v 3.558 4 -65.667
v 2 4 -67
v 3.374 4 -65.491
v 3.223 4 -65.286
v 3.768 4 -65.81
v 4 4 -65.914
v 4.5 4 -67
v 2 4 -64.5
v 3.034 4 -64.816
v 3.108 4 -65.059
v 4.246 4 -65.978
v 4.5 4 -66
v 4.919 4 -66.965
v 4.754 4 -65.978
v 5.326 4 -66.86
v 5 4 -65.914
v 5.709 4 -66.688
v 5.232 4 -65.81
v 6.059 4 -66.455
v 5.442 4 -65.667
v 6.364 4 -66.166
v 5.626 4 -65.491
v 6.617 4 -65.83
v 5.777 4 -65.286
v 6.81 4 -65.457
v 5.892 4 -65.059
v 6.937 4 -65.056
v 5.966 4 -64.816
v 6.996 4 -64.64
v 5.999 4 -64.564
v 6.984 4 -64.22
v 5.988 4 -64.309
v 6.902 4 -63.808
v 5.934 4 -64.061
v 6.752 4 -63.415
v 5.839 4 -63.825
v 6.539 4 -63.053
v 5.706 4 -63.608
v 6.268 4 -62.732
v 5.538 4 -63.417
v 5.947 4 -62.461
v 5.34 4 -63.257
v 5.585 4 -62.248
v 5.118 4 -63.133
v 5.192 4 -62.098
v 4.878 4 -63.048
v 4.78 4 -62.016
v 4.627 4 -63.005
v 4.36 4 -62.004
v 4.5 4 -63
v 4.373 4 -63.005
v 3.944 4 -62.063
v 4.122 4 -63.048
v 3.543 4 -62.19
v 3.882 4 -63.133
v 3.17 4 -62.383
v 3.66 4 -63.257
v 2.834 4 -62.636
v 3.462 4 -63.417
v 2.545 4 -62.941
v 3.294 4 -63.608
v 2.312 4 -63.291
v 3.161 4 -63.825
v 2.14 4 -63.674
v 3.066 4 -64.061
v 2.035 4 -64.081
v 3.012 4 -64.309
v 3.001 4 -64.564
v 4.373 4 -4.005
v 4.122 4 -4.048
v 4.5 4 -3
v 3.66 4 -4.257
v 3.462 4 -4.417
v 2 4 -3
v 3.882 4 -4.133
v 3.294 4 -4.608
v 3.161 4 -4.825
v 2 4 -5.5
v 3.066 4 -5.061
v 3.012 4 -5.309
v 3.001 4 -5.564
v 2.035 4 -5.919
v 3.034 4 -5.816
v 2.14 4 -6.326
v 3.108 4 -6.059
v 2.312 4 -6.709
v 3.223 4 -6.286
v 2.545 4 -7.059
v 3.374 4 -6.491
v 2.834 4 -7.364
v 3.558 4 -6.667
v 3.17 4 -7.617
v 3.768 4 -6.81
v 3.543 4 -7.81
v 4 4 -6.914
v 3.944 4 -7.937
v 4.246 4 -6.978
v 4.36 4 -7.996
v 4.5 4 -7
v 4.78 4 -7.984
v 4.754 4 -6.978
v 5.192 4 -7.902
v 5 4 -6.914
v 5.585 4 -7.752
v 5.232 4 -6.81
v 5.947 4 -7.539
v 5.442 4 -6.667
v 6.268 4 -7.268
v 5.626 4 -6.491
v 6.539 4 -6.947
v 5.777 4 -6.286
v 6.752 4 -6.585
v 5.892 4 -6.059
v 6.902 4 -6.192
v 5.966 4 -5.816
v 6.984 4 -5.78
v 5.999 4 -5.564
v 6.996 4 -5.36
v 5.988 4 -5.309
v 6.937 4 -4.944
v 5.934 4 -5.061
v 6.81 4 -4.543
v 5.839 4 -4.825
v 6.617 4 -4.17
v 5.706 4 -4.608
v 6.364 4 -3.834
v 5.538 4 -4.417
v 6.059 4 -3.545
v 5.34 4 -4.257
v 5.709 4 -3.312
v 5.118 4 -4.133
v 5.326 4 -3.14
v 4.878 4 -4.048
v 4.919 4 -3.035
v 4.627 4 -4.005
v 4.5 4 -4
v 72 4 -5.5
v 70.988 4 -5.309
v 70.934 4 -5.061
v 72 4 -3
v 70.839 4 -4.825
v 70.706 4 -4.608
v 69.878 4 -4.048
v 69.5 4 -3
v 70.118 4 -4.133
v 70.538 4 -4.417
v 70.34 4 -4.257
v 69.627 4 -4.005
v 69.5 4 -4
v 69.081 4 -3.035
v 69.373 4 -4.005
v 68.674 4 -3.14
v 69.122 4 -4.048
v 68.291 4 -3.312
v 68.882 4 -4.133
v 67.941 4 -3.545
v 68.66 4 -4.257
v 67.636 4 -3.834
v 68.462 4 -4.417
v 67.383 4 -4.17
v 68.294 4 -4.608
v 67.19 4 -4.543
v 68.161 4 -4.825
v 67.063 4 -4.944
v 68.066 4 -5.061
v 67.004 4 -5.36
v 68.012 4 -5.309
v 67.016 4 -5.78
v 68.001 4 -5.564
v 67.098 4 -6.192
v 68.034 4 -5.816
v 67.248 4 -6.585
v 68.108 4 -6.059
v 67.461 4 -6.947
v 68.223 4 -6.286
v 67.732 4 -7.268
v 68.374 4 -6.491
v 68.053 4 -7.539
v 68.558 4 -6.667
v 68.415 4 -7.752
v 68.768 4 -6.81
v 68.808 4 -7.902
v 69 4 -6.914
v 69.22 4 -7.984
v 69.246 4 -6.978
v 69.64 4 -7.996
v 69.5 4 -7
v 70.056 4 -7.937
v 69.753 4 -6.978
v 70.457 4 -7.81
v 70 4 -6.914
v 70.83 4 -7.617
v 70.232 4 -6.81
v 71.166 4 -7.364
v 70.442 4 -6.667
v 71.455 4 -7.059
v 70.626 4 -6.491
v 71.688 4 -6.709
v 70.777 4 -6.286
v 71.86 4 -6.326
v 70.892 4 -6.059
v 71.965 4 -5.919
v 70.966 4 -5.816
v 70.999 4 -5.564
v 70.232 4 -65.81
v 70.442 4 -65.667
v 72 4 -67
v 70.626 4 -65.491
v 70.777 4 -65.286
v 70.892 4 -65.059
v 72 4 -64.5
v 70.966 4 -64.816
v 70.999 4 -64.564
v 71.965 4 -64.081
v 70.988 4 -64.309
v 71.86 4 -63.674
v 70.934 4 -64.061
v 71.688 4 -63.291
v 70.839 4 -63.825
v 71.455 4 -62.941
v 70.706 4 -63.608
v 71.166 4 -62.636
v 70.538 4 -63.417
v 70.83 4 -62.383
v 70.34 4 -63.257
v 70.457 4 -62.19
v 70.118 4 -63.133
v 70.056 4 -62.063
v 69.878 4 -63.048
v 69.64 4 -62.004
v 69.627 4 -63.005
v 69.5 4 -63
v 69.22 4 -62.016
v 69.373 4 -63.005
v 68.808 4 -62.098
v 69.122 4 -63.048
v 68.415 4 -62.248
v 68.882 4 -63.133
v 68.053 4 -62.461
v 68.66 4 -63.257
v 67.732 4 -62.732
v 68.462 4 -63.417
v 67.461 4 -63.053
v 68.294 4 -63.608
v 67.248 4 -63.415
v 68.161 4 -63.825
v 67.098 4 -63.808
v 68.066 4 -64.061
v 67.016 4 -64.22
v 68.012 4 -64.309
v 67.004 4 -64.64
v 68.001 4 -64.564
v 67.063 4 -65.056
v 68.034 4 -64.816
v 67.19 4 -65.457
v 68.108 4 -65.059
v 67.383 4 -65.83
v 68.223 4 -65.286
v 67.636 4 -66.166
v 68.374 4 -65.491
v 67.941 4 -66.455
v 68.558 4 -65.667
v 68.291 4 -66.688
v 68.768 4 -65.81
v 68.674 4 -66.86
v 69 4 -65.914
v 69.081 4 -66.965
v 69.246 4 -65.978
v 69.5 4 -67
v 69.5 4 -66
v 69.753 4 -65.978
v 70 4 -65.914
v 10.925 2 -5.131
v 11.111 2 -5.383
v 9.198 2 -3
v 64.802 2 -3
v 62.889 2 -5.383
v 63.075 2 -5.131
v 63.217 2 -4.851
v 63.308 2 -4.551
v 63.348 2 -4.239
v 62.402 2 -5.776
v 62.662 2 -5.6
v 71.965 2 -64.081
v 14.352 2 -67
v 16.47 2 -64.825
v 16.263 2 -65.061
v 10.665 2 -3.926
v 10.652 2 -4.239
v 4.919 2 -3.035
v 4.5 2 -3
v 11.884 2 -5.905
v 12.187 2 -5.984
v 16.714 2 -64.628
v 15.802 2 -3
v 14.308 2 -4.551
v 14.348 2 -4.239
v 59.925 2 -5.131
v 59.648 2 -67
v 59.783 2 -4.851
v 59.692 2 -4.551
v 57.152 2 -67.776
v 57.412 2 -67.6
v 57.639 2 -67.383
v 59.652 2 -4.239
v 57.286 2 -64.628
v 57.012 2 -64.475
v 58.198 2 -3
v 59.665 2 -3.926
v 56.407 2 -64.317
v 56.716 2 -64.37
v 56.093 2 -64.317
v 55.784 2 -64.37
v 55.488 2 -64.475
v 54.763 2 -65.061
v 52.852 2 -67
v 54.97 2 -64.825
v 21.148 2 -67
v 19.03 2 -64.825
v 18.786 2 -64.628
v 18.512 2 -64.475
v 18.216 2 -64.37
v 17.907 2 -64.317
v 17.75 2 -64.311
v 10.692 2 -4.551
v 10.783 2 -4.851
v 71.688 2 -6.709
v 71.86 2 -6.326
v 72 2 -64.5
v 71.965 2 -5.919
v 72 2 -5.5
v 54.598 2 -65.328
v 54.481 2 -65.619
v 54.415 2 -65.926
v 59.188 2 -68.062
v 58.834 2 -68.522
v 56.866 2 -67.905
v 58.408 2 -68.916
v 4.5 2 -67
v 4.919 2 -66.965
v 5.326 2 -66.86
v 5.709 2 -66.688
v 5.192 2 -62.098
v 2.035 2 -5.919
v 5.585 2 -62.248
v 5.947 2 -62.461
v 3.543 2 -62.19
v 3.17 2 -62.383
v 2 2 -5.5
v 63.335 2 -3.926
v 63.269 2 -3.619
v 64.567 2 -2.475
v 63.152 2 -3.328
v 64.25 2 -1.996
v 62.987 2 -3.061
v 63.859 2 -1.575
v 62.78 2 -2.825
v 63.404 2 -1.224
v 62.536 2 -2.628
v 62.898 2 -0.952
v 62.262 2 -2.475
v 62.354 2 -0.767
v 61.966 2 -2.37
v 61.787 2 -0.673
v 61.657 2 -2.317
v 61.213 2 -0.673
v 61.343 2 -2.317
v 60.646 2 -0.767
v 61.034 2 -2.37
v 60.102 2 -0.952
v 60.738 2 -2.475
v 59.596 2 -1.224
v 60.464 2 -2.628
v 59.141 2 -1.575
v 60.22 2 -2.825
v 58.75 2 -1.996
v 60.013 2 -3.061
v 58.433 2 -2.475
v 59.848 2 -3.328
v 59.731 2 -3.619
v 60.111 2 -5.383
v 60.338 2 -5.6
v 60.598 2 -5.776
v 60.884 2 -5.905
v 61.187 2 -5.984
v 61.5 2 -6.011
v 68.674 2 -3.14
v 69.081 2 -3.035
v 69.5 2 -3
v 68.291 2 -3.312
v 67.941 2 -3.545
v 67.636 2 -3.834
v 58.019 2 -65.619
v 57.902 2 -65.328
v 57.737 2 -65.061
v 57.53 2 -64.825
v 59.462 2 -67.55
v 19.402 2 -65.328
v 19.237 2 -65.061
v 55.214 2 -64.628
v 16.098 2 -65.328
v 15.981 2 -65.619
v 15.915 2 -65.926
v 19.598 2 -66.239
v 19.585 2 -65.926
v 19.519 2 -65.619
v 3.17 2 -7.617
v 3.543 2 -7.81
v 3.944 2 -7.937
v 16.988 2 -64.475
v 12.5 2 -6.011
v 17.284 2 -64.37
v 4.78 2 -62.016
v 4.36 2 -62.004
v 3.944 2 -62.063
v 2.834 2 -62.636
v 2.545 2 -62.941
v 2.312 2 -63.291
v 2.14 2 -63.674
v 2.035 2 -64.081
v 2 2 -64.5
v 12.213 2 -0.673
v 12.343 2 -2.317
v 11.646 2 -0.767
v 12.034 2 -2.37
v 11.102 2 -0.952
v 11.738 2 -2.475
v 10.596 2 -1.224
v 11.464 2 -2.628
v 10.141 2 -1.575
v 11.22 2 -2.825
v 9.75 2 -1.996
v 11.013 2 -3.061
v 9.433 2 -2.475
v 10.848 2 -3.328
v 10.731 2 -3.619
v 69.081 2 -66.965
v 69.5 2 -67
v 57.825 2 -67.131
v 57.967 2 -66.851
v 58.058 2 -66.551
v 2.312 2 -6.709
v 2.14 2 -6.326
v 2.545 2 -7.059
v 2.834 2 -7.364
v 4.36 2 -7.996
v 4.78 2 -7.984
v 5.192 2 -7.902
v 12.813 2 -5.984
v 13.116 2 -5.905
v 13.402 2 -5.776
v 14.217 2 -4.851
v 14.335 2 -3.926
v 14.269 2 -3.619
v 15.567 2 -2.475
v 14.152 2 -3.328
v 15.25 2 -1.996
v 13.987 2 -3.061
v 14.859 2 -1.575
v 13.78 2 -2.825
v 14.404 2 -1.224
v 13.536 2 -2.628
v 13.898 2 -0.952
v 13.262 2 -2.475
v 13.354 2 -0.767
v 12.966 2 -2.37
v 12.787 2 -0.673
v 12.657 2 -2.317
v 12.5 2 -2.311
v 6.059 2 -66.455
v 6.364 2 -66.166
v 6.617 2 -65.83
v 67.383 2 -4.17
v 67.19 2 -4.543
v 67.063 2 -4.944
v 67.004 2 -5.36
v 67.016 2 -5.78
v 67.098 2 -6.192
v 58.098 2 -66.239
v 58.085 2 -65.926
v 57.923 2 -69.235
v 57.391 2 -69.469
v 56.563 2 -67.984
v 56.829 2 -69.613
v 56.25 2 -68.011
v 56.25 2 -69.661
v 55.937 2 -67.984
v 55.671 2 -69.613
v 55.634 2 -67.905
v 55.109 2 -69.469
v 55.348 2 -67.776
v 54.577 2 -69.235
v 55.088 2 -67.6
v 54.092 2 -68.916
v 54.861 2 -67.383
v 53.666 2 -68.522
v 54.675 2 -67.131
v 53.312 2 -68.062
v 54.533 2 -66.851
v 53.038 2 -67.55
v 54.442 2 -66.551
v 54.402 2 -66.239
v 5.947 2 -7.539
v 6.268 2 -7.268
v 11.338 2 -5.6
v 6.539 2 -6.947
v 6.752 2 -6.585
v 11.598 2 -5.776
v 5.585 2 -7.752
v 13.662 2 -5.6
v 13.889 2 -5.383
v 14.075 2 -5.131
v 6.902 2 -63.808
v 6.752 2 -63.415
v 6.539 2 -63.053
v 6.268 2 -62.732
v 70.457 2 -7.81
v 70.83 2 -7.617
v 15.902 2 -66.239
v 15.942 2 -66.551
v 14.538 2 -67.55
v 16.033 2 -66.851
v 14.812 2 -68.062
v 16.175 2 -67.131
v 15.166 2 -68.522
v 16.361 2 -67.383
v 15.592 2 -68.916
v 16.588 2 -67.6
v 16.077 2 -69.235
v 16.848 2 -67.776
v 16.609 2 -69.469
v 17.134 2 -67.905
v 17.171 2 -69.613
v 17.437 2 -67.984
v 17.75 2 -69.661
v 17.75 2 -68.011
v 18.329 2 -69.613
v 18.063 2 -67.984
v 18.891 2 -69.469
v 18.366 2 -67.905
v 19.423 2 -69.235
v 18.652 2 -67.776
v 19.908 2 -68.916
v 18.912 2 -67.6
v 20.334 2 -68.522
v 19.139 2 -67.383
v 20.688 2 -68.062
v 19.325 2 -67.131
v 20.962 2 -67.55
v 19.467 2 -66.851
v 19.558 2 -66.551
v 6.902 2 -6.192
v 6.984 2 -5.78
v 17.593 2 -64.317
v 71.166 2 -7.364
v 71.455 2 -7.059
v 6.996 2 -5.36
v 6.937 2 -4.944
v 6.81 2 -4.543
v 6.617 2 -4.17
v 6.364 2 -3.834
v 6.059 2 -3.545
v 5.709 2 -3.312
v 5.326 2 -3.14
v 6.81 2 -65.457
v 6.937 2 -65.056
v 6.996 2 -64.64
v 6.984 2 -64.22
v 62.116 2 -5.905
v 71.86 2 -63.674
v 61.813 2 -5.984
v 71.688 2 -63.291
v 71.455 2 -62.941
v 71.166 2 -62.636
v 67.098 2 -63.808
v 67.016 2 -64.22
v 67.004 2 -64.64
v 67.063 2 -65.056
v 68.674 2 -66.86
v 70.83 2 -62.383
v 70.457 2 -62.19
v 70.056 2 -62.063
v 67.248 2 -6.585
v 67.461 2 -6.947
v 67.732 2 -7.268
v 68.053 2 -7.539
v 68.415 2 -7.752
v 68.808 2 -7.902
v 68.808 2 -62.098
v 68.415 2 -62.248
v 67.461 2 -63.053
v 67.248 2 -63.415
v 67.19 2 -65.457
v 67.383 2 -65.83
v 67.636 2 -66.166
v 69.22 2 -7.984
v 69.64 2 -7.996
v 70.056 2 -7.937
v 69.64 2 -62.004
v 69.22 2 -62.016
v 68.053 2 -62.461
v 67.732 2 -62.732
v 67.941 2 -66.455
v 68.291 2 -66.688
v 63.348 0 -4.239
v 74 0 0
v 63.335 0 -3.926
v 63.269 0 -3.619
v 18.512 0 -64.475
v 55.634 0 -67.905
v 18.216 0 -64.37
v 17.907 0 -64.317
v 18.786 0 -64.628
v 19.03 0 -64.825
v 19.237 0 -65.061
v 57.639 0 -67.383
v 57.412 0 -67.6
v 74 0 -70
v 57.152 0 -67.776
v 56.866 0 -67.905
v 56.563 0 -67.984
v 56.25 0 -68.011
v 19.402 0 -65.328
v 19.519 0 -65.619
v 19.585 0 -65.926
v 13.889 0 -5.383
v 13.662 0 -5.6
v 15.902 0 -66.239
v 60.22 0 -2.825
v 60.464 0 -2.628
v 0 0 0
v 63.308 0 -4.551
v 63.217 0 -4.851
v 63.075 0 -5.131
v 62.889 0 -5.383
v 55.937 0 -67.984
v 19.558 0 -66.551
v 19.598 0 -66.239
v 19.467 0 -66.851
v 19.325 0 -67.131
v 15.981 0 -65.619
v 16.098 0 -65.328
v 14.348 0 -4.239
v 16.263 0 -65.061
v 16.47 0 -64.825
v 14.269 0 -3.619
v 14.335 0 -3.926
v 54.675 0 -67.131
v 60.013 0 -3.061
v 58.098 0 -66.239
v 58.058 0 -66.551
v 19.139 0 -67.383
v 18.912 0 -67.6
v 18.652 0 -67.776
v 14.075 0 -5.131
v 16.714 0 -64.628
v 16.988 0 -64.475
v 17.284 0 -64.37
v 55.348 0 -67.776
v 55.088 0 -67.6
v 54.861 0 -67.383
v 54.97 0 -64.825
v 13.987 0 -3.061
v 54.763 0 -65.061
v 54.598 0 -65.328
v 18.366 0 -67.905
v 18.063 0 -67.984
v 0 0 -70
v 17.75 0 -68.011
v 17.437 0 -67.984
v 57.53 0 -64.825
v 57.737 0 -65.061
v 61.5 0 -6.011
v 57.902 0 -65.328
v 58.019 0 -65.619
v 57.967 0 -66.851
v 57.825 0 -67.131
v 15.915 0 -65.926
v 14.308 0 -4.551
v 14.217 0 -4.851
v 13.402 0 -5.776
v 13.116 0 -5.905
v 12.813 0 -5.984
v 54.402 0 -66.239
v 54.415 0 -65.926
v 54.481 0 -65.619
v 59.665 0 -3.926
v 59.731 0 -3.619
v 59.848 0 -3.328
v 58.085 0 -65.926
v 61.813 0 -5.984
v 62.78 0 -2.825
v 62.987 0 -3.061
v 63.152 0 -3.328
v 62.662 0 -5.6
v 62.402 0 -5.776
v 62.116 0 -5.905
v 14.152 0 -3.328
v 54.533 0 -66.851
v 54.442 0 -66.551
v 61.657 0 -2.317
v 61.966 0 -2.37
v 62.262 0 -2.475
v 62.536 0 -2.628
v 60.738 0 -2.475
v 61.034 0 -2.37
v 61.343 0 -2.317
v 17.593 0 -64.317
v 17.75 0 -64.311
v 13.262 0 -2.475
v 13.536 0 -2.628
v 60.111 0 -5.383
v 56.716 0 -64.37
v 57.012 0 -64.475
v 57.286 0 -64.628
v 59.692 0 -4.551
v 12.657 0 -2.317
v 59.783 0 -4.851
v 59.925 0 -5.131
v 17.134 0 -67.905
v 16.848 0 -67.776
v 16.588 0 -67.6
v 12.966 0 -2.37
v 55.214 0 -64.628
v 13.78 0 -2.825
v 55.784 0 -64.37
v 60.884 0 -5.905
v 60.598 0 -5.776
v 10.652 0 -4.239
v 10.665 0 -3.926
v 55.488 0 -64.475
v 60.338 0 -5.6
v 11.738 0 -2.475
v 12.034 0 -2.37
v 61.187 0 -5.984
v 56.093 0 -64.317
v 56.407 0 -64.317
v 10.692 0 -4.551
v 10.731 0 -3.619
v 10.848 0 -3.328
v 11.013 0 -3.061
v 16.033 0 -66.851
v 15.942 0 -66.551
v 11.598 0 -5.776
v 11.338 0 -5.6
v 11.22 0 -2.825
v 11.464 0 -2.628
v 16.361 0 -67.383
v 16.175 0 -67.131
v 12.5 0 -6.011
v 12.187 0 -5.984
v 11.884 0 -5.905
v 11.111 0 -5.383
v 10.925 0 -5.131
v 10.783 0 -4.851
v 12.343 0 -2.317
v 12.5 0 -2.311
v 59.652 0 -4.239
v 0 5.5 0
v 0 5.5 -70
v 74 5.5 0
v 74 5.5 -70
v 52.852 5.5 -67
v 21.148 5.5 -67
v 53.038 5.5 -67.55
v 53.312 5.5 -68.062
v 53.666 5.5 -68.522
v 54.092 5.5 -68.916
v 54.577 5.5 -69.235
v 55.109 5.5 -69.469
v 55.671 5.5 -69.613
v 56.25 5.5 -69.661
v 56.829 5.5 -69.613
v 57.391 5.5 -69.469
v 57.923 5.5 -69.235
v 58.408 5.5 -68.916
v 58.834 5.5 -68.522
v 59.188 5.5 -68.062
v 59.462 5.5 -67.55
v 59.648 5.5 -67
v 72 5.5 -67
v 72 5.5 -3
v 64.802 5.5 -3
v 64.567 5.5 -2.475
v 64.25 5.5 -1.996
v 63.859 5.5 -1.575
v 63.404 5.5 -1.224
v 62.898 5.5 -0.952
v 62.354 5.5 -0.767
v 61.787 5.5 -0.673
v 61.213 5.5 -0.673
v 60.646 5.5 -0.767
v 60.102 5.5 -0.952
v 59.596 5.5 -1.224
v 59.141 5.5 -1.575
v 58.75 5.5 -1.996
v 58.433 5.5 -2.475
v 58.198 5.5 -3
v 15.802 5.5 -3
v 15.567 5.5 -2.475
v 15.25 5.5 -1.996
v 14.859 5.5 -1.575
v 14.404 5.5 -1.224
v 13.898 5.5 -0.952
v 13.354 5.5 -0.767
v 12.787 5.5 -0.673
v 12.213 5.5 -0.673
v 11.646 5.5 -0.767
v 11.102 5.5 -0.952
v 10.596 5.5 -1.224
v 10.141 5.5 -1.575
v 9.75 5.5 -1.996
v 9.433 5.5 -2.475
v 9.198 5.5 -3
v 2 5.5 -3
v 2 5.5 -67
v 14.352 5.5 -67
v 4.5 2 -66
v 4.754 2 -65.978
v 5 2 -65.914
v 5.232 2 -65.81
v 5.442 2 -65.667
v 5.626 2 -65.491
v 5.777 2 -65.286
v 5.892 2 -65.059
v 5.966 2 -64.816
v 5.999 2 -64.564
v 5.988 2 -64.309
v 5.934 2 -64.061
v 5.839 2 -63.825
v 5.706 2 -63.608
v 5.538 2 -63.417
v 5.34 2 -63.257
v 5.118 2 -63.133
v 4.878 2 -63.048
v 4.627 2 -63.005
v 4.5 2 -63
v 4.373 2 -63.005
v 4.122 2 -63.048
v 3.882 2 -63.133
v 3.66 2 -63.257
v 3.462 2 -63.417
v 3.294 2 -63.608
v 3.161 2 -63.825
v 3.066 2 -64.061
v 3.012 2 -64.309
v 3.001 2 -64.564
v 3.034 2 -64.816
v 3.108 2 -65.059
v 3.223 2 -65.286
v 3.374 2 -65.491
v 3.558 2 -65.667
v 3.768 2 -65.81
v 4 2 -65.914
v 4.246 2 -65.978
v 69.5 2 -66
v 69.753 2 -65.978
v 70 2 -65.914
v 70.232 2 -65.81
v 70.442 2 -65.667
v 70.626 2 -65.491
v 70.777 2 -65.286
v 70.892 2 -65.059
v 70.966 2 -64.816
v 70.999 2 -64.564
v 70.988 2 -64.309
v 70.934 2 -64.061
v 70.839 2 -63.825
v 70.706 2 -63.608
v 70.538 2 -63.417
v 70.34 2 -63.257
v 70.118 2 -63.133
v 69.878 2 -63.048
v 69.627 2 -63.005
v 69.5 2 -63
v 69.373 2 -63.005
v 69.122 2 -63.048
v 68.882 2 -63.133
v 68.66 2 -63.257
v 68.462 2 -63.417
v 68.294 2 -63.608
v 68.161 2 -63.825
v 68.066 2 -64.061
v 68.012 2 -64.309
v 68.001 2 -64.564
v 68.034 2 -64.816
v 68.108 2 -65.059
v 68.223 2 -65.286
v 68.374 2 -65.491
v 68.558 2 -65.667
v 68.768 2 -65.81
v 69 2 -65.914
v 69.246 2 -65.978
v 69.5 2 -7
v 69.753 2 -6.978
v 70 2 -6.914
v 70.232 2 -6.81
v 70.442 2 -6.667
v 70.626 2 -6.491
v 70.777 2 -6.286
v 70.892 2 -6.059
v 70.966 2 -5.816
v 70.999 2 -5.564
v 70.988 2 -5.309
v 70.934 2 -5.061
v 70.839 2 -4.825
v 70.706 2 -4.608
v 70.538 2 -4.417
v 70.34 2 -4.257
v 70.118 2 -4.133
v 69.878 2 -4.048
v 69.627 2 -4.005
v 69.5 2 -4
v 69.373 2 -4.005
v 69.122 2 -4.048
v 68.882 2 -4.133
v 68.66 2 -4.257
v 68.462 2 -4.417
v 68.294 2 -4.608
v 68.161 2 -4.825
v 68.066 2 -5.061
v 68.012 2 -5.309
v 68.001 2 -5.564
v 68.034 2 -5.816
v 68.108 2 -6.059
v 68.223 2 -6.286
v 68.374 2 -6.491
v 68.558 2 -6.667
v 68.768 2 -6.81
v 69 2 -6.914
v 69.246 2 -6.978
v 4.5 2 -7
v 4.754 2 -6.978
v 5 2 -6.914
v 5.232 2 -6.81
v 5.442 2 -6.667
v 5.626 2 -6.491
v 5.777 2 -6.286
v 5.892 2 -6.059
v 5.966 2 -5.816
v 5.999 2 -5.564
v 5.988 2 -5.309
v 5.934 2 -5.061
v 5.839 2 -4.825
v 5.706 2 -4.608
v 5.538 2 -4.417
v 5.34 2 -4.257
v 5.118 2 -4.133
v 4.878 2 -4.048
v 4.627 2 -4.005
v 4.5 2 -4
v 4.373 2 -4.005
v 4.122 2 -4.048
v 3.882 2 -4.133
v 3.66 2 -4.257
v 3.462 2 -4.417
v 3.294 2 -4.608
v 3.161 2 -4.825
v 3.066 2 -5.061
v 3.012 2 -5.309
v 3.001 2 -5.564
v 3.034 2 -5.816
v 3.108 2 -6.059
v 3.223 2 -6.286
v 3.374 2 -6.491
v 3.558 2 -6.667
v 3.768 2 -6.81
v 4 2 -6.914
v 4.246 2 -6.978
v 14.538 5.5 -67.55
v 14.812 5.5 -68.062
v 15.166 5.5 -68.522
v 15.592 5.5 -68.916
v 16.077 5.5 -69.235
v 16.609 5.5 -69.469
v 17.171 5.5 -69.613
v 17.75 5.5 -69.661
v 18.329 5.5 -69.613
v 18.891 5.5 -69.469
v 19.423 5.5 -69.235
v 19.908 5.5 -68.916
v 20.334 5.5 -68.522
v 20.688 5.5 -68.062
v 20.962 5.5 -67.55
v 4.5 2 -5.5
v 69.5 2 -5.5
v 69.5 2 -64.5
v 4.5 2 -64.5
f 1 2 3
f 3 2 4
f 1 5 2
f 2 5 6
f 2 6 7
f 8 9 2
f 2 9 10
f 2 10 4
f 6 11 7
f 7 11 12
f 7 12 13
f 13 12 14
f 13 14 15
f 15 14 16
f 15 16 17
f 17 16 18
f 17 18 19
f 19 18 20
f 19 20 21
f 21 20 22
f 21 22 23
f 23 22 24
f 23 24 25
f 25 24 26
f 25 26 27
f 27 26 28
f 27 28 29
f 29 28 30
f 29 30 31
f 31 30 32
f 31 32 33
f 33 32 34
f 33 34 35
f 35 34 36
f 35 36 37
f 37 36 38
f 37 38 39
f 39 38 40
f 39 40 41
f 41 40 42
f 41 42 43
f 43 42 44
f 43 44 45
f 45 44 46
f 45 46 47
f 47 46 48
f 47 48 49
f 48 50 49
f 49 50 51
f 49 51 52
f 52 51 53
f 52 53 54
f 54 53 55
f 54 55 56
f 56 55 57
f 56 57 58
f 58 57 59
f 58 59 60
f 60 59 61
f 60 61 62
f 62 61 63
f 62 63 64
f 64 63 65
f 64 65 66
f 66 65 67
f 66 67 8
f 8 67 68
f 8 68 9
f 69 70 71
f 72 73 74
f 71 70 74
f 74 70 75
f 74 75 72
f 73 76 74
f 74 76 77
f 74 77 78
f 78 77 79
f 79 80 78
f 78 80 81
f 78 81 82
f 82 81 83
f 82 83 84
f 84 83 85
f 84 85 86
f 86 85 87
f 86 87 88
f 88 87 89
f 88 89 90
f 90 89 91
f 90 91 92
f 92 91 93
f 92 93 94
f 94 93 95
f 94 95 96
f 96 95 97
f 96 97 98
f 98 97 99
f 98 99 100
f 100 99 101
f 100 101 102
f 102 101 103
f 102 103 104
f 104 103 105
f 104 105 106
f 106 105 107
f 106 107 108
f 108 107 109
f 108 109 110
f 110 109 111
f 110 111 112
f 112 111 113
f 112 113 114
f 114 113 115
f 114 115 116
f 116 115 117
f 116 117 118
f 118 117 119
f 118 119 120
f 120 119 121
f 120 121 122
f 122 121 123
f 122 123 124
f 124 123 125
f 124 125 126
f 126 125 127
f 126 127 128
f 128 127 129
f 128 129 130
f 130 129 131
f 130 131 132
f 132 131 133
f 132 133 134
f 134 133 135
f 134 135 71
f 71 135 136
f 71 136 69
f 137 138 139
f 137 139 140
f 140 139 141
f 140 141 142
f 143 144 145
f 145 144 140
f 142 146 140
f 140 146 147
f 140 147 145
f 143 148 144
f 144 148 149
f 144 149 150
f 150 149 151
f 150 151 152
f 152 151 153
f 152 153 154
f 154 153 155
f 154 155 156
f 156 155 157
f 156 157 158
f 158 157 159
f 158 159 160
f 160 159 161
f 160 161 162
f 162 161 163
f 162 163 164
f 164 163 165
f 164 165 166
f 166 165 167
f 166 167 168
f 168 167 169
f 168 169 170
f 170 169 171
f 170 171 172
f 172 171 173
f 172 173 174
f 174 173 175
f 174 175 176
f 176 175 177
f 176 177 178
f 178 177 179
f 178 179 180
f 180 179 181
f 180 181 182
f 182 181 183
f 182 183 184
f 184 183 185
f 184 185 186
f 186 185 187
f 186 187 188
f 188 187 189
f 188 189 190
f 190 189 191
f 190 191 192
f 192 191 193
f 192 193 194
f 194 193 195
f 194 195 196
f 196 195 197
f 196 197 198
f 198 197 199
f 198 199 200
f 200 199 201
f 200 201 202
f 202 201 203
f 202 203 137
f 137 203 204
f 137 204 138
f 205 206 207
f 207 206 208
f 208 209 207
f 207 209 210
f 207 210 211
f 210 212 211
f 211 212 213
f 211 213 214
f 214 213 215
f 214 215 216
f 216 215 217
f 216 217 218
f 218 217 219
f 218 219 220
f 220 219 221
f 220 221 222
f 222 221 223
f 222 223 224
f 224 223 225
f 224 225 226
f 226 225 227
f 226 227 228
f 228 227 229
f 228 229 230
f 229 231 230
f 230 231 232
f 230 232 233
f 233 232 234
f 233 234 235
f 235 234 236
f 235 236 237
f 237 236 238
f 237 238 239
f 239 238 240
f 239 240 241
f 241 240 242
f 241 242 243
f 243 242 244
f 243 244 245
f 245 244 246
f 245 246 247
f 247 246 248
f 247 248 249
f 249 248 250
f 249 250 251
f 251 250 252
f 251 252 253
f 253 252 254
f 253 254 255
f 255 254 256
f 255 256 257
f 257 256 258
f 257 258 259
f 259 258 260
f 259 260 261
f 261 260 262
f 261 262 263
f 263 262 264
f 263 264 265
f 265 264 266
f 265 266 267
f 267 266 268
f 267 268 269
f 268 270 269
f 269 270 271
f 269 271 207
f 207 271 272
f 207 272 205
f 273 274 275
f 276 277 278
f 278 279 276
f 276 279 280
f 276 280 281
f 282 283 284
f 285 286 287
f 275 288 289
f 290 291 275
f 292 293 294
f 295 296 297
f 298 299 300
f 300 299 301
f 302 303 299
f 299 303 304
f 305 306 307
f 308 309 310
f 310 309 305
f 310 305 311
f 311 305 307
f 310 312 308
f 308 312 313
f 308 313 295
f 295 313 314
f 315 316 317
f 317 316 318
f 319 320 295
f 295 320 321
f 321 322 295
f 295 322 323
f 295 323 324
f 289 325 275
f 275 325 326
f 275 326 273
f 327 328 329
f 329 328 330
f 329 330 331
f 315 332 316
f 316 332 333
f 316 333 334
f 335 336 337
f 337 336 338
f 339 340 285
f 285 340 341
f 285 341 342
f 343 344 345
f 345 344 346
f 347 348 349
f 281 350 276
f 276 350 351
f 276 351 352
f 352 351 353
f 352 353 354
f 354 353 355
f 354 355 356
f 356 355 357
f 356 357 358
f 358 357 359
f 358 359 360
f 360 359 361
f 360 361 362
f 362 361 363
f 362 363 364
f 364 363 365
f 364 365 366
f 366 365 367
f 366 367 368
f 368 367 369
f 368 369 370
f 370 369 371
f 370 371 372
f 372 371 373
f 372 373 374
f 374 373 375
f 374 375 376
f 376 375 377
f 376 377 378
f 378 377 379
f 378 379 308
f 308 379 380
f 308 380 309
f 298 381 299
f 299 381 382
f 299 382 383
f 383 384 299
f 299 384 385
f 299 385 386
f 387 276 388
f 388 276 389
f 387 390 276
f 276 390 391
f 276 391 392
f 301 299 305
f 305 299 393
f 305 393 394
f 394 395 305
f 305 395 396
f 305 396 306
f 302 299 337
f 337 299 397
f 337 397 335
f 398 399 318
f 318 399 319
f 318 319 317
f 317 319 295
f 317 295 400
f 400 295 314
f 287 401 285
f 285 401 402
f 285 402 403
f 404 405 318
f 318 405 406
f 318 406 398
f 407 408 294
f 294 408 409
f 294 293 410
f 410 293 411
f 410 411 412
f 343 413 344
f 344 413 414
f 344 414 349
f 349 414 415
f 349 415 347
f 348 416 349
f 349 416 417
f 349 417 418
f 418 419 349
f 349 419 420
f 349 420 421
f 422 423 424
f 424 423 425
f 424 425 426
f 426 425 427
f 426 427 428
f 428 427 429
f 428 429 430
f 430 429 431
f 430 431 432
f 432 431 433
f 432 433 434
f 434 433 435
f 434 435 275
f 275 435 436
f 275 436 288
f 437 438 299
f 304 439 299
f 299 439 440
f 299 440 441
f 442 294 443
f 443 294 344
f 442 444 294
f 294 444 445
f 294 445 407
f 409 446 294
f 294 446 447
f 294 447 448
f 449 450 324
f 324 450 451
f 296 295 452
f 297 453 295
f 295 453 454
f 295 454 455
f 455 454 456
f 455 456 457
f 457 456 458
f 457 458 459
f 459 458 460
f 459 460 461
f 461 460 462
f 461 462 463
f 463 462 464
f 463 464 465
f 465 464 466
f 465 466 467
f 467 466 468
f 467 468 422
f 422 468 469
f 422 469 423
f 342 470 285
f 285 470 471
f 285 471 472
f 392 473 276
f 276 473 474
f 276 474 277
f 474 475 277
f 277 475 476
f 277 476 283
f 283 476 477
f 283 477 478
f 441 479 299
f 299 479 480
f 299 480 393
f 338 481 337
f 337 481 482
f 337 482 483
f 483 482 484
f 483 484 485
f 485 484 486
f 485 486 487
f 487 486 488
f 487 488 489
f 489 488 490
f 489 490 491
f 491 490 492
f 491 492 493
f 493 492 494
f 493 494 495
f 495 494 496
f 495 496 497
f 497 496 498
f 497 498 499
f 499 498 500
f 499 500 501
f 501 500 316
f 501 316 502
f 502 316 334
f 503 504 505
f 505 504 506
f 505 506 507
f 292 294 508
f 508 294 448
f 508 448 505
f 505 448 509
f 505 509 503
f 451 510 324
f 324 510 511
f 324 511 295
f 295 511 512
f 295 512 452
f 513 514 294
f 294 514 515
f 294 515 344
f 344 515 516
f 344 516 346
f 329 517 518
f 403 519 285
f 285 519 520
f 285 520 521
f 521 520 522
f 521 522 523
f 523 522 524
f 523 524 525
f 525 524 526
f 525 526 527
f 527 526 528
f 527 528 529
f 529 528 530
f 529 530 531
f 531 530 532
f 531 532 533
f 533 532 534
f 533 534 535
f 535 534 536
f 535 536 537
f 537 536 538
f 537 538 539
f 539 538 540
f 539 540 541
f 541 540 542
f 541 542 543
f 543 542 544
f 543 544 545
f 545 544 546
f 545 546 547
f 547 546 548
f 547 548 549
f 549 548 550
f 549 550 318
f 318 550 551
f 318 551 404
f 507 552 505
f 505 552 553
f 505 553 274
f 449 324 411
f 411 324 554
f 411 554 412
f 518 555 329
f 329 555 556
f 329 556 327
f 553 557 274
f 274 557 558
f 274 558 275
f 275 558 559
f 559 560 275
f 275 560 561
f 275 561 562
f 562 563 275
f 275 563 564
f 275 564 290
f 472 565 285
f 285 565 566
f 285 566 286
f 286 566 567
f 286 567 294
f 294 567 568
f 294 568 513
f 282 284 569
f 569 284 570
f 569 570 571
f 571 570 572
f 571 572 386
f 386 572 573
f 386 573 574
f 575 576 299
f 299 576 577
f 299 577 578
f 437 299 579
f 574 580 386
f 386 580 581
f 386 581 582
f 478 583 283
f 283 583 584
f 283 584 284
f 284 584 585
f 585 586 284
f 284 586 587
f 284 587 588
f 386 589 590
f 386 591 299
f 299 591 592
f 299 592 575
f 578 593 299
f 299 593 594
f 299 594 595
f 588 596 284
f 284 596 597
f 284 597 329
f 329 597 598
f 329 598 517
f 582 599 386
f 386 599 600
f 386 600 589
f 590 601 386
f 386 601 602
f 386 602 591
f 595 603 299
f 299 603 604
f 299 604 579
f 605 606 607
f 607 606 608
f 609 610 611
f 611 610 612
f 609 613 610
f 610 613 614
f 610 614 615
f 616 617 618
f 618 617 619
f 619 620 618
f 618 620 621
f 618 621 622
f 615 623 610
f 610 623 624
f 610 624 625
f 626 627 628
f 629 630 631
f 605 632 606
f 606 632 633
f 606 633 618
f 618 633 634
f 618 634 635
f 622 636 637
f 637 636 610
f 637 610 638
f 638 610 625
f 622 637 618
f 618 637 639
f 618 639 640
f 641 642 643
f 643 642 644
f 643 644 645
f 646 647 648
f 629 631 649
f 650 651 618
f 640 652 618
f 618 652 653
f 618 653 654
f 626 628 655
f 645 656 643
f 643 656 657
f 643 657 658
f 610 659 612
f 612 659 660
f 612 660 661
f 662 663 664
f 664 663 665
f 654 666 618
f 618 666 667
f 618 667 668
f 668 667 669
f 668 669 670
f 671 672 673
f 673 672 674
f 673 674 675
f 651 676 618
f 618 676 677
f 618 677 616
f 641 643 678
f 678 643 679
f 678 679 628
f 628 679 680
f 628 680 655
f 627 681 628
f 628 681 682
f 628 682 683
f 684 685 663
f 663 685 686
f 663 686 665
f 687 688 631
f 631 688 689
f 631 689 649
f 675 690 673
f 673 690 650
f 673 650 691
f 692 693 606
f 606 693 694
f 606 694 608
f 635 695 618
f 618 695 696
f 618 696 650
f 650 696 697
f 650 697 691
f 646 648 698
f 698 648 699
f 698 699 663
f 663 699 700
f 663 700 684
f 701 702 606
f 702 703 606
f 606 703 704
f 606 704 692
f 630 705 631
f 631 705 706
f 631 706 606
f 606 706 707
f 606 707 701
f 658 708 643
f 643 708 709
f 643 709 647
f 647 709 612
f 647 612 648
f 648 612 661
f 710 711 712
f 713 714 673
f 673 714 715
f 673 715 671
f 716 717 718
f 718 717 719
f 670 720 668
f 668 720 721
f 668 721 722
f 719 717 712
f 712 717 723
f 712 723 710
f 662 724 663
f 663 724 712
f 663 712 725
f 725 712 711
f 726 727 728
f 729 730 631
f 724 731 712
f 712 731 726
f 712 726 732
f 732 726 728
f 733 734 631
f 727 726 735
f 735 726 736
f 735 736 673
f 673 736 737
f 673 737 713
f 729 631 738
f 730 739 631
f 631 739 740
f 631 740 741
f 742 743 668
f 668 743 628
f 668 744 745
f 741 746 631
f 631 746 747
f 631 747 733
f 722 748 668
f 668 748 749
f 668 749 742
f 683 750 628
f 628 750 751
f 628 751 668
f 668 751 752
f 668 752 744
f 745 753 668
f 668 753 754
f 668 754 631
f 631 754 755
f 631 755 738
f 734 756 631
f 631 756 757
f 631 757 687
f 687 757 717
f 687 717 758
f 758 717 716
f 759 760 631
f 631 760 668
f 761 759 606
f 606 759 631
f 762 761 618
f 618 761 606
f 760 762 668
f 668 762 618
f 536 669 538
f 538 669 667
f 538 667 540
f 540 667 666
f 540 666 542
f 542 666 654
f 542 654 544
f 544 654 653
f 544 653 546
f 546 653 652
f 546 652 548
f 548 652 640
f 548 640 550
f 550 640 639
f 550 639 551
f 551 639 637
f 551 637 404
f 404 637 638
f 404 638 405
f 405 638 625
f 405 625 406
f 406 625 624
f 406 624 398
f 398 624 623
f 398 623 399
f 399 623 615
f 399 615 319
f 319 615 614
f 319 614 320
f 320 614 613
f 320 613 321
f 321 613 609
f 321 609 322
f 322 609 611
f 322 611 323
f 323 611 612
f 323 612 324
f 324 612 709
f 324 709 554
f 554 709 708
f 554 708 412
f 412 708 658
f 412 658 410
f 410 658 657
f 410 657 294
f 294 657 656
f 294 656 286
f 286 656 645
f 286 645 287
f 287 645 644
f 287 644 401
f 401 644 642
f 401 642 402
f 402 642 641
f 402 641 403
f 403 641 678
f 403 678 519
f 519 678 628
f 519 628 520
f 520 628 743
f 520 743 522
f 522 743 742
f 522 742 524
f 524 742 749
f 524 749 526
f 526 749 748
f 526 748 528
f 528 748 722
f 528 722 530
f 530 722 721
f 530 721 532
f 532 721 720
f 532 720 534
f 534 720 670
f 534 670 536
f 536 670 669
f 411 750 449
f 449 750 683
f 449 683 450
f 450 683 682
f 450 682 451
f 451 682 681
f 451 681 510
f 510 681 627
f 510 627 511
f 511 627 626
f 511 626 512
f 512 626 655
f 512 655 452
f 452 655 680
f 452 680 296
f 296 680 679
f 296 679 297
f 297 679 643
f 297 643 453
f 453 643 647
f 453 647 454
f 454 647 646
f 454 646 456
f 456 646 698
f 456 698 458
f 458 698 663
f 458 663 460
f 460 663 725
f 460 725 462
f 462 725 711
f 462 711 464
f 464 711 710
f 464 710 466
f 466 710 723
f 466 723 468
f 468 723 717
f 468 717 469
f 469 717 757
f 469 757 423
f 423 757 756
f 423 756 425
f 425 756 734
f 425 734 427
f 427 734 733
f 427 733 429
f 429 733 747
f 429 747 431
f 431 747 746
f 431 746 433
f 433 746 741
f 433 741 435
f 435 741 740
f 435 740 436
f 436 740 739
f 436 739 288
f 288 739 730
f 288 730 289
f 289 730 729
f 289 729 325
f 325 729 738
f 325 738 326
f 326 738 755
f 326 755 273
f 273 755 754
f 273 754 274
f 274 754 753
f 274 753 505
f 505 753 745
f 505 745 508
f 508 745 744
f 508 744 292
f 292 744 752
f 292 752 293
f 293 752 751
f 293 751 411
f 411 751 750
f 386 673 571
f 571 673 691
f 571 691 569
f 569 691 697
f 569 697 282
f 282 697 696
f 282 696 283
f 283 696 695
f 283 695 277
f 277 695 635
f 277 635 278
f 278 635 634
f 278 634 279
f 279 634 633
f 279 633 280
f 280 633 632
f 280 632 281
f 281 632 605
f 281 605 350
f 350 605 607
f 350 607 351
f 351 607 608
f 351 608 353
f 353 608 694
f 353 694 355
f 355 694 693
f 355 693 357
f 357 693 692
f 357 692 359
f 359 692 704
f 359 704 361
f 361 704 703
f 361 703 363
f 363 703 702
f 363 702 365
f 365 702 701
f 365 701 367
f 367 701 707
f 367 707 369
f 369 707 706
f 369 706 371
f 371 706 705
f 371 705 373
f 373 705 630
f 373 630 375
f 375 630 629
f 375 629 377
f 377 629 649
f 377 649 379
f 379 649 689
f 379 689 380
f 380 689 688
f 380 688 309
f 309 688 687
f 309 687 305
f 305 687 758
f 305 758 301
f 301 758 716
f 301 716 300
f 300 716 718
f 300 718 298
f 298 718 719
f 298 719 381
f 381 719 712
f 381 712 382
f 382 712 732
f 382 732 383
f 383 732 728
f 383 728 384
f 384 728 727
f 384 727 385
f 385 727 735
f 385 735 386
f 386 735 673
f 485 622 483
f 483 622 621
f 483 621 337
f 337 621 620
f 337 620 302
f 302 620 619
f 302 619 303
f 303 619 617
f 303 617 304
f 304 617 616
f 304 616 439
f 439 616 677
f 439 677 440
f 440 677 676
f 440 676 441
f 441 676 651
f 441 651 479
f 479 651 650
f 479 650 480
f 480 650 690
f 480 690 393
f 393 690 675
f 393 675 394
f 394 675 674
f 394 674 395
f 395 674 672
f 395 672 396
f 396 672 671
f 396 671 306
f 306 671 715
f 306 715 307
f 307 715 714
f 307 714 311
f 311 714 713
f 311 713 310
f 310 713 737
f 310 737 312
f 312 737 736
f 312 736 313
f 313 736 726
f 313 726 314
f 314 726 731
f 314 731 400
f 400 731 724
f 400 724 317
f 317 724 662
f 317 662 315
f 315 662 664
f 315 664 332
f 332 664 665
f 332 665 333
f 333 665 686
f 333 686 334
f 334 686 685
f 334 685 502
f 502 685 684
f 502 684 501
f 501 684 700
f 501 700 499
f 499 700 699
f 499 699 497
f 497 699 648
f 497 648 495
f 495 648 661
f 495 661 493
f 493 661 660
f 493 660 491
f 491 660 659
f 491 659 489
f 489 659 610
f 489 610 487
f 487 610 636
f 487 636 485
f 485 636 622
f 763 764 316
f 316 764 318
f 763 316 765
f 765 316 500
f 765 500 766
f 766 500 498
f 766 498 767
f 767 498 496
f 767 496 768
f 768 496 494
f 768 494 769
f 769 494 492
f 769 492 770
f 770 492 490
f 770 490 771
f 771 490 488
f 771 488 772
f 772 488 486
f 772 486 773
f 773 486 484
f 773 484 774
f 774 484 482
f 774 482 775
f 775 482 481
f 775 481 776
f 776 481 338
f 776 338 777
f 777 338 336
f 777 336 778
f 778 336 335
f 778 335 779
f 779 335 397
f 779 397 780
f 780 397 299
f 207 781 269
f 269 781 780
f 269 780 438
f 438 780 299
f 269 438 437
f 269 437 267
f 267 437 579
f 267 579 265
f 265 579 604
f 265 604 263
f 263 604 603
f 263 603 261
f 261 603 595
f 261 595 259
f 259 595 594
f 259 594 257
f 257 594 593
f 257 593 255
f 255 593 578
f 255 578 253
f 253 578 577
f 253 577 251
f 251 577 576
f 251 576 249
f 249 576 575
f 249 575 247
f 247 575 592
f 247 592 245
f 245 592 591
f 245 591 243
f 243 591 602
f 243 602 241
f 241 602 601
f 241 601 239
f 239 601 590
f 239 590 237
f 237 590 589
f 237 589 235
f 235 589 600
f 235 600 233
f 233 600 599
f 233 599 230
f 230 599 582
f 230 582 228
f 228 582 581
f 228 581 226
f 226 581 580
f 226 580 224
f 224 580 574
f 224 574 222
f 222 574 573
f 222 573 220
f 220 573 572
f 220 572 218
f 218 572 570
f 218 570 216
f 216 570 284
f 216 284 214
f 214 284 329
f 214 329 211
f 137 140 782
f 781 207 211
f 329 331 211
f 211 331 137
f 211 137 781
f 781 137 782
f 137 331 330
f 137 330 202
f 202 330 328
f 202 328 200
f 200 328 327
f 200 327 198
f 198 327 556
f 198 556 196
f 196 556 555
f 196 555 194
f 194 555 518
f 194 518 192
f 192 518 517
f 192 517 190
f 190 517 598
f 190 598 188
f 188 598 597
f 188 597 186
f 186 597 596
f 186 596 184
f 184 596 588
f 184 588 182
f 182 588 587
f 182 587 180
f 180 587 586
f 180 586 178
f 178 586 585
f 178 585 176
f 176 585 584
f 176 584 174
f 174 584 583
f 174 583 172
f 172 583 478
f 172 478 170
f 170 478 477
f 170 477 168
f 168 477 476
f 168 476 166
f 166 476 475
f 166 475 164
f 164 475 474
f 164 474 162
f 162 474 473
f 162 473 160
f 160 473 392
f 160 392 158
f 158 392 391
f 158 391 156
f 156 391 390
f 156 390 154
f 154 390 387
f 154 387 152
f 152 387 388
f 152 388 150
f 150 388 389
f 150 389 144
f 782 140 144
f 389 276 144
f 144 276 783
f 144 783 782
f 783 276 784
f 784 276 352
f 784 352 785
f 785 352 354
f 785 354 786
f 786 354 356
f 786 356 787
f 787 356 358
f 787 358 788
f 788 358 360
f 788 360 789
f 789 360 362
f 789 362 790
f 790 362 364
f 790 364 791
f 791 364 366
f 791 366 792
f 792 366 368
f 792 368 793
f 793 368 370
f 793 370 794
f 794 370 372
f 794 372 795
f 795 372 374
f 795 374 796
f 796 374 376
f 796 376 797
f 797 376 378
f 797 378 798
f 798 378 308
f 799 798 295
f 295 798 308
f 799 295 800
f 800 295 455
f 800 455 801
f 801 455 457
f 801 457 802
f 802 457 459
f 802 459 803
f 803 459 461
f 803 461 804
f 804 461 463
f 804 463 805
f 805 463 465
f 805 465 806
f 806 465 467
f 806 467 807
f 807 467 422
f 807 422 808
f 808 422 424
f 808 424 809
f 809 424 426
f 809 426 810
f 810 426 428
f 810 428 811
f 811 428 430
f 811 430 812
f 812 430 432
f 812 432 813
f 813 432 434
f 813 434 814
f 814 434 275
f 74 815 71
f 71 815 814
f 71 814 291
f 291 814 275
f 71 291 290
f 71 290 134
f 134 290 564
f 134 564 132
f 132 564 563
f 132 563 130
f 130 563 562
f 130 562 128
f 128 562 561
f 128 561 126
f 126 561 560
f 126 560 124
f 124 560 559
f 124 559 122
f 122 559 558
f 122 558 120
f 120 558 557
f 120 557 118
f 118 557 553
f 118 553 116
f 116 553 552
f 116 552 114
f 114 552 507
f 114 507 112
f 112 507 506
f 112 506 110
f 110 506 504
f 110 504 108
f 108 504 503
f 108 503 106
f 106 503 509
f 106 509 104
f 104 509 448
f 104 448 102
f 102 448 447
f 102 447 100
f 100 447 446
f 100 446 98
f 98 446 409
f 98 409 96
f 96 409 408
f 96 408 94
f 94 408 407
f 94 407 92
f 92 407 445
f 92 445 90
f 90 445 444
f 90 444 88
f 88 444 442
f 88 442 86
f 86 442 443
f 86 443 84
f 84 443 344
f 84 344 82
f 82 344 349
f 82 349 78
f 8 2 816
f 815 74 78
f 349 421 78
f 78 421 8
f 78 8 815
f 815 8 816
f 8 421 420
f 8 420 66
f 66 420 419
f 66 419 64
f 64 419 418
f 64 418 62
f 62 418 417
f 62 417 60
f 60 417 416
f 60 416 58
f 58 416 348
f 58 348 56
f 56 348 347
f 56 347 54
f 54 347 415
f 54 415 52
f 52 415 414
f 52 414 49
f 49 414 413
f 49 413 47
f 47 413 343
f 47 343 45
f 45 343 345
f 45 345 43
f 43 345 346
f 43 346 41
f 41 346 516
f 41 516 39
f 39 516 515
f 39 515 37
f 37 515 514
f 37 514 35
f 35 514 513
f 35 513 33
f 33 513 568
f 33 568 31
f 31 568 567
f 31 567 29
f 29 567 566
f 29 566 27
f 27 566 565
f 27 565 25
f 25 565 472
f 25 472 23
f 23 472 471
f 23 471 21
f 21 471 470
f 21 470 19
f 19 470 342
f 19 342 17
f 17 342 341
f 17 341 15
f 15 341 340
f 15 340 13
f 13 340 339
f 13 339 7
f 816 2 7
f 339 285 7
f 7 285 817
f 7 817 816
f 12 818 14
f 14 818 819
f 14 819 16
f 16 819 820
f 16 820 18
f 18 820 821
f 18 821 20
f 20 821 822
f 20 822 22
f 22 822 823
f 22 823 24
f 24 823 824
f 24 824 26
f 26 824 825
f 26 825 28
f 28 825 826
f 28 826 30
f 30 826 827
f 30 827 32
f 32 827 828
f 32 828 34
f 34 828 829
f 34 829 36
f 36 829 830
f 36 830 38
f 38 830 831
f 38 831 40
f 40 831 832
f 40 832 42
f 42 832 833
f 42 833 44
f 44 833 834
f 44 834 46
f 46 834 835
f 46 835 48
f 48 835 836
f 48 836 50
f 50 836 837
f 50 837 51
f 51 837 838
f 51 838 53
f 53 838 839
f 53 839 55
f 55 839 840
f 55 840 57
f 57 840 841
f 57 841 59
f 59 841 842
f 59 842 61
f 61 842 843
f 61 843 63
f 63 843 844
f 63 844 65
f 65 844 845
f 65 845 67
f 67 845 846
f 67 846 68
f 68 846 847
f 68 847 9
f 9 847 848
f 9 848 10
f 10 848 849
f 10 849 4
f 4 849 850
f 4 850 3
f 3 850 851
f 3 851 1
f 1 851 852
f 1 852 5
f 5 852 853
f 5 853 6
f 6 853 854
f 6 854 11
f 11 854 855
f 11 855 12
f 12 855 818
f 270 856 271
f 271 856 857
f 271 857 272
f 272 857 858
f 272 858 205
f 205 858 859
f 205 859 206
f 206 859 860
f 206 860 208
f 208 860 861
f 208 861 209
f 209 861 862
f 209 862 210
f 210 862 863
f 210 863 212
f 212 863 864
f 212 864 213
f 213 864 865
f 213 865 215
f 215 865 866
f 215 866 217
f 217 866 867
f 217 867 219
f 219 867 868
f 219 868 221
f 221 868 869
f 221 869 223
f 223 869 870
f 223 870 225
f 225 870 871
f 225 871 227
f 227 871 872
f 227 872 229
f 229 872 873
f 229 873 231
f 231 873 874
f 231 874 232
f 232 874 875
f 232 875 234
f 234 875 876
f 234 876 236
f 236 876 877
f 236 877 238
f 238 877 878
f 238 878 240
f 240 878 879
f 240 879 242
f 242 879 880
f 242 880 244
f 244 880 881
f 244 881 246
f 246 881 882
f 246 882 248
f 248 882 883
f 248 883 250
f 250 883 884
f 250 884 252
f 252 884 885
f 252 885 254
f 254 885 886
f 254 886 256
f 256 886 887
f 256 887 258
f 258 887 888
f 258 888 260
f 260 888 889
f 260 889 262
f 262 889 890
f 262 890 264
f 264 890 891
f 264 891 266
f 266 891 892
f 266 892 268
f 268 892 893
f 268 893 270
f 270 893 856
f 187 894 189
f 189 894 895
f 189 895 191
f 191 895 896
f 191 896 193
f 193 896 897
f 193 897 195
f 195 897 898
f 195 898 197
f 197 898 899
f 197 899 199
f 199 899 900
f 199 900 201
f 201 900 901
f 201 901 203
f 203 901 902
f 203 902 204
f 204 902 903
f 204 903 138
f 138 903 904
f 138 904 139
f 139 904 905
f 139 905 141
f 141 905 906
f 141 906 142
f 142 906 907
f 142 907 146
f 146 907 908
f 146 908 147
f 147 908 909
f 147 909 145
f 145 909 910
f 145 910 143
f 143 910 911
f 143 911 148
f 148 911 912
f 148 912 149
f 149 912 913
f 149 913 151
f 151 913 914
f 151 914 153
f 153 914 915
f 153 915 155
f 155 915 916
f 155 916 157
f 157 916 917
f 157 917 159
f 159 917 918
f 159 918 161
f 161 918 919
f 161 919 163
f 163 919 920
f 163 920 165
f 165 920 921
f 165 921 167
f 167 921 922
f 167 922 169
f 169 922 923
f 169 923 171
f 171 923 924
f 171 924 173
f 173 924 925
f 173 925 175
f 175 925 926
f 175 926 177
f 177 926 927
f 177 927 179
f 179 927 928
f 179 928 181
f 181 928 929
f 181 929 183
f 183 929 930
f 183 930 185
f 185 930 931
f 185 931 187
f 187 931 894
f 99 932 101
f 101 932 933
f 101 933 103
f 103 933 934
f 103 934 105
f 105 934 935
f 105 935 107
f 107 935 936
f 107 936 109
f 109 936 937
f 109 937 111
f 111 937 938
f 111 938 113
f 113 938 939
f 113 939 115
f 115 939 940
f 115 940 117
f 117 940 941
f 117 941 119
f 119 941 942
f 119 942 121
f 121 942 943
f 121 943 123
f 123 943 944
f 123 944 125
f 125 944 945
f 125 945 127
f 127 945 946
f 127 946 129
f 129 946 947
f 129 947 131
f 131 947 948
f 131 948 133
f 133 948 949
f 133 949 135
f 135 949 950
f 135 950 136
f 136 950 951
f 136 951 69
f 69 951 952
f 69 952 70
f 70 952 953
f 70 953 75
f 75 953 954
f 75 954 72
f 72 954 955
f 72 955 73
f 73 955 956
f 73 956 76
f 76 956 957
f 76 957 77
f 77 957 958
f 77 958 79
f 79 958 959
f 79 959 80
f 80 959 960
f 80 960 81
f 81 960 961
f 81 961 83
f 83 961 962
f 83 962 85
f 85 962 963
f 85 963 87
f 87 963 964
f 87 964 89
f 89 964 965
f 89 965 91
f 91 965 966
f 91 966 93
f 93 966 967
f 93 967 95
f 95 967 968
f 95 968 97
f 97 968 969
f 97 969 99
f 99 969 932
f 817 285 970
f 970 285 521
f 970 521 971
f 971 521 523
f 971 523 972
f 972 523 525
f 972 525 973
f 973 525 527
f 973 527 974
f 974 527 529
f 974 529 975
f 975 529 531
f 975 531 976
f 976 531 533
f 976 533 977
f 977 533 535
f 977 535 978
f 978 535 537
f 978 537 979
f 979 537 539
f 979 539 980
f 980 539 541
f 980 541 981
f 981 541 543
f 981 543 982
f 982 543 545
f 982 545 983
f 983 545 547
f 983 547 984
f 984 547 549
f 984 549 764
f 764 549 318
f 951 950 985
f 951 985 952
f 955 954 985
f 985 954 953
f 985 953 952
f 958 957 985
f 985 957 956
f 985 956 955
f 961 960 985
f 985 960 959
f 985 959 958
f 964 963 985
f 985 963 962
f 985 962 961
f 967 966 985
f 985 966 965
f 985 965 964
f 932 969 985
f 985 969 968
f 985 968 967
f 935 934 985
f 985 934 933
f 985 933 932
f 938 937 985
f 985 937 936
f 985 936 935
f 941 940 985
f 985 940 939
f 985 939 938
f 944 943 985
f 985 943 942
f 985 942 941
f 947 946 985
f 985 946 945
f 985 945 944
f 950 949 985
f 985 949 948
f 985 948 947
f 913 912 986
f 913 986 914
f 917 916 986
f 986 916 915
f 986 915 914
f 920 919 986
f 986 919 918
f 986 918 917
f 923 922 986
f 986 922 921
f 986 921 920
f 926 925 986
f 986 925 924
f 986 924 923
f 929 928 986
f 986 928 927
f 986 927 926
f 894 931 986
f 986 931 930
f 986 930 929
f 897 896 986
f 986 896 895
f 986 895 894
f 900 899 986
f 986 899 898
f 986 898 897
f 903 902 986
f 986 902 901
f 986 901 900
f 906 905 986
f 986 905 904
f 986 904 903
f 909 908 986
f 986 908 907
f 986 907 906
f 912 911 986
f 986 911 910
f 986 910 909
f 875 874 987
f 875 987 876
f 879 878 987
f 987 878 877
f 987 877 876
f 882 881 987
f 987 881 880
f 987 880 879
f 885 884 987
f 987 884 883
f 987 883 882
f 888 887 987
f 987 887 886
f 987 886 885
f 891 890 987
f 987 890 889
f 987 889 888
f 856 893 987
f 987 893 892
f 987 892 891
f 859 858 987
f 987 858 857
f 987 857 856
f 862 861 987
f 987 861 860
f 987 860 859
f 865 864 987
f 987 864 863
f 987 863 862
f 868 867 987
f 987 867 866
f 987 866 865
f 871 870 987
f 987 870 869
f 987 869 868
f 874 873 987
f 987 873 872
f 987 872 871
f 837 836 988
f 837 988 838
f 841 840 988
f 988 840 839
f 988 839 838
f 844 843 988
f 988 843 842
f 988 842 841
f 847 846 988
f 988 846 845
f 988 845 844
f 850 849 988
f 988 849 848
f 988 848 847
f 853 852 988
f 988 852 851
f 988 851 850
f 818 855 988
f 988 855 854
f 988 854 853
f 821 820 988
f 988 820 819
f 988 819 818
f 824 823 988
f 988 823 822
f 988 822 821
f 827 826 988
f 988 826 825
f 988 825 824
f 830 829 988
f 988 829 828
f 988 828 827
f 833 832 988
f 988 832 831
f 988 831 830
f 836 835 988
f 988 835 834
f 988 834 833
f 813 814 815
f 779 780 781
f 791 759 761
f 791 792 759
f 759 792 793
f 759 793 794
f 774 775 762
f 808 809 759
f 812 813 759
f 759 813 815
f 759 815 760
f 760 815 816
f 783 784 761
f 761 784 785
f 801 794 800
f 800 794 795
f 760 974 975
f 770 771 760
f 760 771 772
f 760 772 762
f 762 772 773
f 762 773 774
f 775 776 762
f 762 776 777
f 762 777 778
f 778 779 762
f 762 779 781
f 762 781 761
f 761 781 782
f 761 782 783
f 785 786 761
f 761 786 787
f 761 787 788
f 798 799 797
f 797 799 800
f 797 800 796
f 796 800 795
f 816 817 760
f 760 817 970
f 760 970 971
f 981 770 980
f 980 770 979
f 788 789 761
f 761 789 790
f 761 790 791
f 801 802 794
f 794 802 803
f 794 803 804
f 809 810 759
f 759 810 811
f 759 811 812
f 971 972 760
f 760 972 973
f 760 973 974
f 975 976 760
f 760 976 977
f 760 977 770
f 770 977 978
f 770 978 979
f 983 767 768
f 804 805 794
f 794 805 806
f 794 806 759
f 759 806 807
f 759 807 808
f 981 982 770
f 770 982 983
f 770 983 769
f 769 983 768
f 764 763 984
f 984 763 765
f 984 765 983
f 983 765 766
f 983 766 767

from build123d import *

# Parameters (mm, degrees)
SKETCH1_R           = 1.85
BOSS_EXTRUDE1_DEPTH = 2
SKETCH2_W           = 74
SKETCH2_H           = 70
SKETCH2_R           = 1.5
BOSS_EXTRUDE2_DEPTH = 2
SKETCH3_W           = 74
SKETCH3_H           = 70
BOSS_EXTRUDE3_DEPTH = 1.5


with BuildPart() as part:
    # Sketch1 → Boss-Extrude1 (new body)
    with BuildSketch(Plane(origin=(0, 0, 0), x_dir=(1, 0, 0), z_dir=(0, 1, 0))):
        Polygon((0, 0), (74, 0), (74, 70), (56.753344727, 70), (55.746655273, 70), (18.253344727, 70), (17.246655273, 70), (0, 70), align=None)
        with Locations((17.75, 66.160760925)):
            Circle(SKETCH1_R, mode=Mode.SUBTRACT)
        with Locations((12.5, 4.160760925)):
            Circle(SKETCH1_R, mode=Mode.SUBTRACT)
        with Locations((61.5, 4.160760925)):
            Circle(SKETCH1_R, mode=Mode.SUBTRACT)
        with Locations((56.25, 66.160760925)):
            Circle(SKETCH1_R, mode=Mode.SUBTRACT)
    extrude(amount=BOSS_EXTRUDE1_DEPTH)

    # Sketch2 → Boss-Extrude2 (add)
    with BuildSketch(Plane(origin=(0, 2, 0), x_dir=(1, 0, 0), z_dir=(0, 1, 0))):
        with Locations((37, 35)):
            Rectangle(SKETCH2_W, SKETCH2_H)
        with Locations((4.5, 5.5)):
            Circle(SKETCH2_R, mode=Mode.SUBTRACT)
        with Locations((69.5, 5.5)):
            Circle(SKETCH2_R, mode=Mode.SUBTRACT)
        with Locations((69.5, 64.5)):
            Circle(SKETCH2_R, mode=Mode.SUBTRACT)
        with Locations((4.5, 64.5)):
            Circle(SKETCH2_R, mode=Mode.SUBTRACT)
        with BuildLine():
            Line((4.5, 3), (9.198086301, 3))
            ThreePointArc((9.198086301, 3), (12.5, 0.660760925), (15.801913699, 3))
            Line((15.801913699, 3), (58.198086301, 3))
            ThreePointArc((58.198086301, 3), (61.5, 0.660760925), (64.801913699, 3))
            Line((64.801913699, 3), (69.5, 3))
            ThreePointArc((69.5, 3), (67.732233047, 7.267766953), (72, 5.5))
            Line((72, 5.5), (72, 64.5))
            ThreePointArc((72, 64.5), (67.732233047, 62.732233047), (69.5, 67))
            Line((69.5, 67), (59.647893138, 67))
            ThreePointArc((59.647893138, 67), (56.25, 69.660760925), (52.852106862, 67))
            Line((52.852106862, 67), (21.147893138, 67))
            ThreePointArc((21.147893138, 67), (17.75, 69.660760925), (14.352106862, 67))
            Line((14.352106862, 67), (4.5, 67))
            ThreePointArc((4.5, 67), (6.267766953, 62.732233047), (2, 64.5))
            Line((2, 64.5), (2, 5.5))
            ThreePointArc((2, 5.5), (6.267766953, 7.267766953), (4.5, 3))
        make_face(mode=Mode.SUBTRACT)
    extrude(amount=BOSS_EXTRUDE2_DEPTH)

    # Sketch3 → Boss-Extrude3 (add)
    with BuildSketch(Plane(origin=(0, 4, 0), x_dir=(1, 0, 0), z_dir=(0, 1, 0))):
        with Locations((37, 35)):
            Rectangle(SKETCH3_W, SKETCH3_H)
        with BuildLine():
            Line((9.198086301, 3), (2, 3))
            Line((2, 3), (2, 67))
            Line((2, 67), (4.5, 67))
            Line((4.5, 67), (14.352106862, 67))
            ThreePointArc((14.352106862, 67), (17.75, 69.660760925), (21.147893138, 67))
            Line((21.147893138, 67), (52.852106862, 67))
            ThreePointArc((52.852106862, 67), (56.25, 69.660760925), (59.647893138, 67))
            Line((59.647893138, 67), (72, 67))
            Line((72, 67), (72, 64.6))
            Line((72, 64.6), (72, 3))
            Line((72, 3), (64.801913699, 3))
            ThreePointArc((64.801913699, 3), (61.5, 0.660760925), (58.198086301, 3))
            Line((58.198086301, 3), (15.801913699, 3))
            ThreePointArc((15.801913699, 3), (12.5, 0.660760925), (9.198086301, 3))
        make_face(mode=Mode.SUBTRACT)
    extrude(amount=BOSS_EXTRUDE3_DEPTH)


solid = part.part
